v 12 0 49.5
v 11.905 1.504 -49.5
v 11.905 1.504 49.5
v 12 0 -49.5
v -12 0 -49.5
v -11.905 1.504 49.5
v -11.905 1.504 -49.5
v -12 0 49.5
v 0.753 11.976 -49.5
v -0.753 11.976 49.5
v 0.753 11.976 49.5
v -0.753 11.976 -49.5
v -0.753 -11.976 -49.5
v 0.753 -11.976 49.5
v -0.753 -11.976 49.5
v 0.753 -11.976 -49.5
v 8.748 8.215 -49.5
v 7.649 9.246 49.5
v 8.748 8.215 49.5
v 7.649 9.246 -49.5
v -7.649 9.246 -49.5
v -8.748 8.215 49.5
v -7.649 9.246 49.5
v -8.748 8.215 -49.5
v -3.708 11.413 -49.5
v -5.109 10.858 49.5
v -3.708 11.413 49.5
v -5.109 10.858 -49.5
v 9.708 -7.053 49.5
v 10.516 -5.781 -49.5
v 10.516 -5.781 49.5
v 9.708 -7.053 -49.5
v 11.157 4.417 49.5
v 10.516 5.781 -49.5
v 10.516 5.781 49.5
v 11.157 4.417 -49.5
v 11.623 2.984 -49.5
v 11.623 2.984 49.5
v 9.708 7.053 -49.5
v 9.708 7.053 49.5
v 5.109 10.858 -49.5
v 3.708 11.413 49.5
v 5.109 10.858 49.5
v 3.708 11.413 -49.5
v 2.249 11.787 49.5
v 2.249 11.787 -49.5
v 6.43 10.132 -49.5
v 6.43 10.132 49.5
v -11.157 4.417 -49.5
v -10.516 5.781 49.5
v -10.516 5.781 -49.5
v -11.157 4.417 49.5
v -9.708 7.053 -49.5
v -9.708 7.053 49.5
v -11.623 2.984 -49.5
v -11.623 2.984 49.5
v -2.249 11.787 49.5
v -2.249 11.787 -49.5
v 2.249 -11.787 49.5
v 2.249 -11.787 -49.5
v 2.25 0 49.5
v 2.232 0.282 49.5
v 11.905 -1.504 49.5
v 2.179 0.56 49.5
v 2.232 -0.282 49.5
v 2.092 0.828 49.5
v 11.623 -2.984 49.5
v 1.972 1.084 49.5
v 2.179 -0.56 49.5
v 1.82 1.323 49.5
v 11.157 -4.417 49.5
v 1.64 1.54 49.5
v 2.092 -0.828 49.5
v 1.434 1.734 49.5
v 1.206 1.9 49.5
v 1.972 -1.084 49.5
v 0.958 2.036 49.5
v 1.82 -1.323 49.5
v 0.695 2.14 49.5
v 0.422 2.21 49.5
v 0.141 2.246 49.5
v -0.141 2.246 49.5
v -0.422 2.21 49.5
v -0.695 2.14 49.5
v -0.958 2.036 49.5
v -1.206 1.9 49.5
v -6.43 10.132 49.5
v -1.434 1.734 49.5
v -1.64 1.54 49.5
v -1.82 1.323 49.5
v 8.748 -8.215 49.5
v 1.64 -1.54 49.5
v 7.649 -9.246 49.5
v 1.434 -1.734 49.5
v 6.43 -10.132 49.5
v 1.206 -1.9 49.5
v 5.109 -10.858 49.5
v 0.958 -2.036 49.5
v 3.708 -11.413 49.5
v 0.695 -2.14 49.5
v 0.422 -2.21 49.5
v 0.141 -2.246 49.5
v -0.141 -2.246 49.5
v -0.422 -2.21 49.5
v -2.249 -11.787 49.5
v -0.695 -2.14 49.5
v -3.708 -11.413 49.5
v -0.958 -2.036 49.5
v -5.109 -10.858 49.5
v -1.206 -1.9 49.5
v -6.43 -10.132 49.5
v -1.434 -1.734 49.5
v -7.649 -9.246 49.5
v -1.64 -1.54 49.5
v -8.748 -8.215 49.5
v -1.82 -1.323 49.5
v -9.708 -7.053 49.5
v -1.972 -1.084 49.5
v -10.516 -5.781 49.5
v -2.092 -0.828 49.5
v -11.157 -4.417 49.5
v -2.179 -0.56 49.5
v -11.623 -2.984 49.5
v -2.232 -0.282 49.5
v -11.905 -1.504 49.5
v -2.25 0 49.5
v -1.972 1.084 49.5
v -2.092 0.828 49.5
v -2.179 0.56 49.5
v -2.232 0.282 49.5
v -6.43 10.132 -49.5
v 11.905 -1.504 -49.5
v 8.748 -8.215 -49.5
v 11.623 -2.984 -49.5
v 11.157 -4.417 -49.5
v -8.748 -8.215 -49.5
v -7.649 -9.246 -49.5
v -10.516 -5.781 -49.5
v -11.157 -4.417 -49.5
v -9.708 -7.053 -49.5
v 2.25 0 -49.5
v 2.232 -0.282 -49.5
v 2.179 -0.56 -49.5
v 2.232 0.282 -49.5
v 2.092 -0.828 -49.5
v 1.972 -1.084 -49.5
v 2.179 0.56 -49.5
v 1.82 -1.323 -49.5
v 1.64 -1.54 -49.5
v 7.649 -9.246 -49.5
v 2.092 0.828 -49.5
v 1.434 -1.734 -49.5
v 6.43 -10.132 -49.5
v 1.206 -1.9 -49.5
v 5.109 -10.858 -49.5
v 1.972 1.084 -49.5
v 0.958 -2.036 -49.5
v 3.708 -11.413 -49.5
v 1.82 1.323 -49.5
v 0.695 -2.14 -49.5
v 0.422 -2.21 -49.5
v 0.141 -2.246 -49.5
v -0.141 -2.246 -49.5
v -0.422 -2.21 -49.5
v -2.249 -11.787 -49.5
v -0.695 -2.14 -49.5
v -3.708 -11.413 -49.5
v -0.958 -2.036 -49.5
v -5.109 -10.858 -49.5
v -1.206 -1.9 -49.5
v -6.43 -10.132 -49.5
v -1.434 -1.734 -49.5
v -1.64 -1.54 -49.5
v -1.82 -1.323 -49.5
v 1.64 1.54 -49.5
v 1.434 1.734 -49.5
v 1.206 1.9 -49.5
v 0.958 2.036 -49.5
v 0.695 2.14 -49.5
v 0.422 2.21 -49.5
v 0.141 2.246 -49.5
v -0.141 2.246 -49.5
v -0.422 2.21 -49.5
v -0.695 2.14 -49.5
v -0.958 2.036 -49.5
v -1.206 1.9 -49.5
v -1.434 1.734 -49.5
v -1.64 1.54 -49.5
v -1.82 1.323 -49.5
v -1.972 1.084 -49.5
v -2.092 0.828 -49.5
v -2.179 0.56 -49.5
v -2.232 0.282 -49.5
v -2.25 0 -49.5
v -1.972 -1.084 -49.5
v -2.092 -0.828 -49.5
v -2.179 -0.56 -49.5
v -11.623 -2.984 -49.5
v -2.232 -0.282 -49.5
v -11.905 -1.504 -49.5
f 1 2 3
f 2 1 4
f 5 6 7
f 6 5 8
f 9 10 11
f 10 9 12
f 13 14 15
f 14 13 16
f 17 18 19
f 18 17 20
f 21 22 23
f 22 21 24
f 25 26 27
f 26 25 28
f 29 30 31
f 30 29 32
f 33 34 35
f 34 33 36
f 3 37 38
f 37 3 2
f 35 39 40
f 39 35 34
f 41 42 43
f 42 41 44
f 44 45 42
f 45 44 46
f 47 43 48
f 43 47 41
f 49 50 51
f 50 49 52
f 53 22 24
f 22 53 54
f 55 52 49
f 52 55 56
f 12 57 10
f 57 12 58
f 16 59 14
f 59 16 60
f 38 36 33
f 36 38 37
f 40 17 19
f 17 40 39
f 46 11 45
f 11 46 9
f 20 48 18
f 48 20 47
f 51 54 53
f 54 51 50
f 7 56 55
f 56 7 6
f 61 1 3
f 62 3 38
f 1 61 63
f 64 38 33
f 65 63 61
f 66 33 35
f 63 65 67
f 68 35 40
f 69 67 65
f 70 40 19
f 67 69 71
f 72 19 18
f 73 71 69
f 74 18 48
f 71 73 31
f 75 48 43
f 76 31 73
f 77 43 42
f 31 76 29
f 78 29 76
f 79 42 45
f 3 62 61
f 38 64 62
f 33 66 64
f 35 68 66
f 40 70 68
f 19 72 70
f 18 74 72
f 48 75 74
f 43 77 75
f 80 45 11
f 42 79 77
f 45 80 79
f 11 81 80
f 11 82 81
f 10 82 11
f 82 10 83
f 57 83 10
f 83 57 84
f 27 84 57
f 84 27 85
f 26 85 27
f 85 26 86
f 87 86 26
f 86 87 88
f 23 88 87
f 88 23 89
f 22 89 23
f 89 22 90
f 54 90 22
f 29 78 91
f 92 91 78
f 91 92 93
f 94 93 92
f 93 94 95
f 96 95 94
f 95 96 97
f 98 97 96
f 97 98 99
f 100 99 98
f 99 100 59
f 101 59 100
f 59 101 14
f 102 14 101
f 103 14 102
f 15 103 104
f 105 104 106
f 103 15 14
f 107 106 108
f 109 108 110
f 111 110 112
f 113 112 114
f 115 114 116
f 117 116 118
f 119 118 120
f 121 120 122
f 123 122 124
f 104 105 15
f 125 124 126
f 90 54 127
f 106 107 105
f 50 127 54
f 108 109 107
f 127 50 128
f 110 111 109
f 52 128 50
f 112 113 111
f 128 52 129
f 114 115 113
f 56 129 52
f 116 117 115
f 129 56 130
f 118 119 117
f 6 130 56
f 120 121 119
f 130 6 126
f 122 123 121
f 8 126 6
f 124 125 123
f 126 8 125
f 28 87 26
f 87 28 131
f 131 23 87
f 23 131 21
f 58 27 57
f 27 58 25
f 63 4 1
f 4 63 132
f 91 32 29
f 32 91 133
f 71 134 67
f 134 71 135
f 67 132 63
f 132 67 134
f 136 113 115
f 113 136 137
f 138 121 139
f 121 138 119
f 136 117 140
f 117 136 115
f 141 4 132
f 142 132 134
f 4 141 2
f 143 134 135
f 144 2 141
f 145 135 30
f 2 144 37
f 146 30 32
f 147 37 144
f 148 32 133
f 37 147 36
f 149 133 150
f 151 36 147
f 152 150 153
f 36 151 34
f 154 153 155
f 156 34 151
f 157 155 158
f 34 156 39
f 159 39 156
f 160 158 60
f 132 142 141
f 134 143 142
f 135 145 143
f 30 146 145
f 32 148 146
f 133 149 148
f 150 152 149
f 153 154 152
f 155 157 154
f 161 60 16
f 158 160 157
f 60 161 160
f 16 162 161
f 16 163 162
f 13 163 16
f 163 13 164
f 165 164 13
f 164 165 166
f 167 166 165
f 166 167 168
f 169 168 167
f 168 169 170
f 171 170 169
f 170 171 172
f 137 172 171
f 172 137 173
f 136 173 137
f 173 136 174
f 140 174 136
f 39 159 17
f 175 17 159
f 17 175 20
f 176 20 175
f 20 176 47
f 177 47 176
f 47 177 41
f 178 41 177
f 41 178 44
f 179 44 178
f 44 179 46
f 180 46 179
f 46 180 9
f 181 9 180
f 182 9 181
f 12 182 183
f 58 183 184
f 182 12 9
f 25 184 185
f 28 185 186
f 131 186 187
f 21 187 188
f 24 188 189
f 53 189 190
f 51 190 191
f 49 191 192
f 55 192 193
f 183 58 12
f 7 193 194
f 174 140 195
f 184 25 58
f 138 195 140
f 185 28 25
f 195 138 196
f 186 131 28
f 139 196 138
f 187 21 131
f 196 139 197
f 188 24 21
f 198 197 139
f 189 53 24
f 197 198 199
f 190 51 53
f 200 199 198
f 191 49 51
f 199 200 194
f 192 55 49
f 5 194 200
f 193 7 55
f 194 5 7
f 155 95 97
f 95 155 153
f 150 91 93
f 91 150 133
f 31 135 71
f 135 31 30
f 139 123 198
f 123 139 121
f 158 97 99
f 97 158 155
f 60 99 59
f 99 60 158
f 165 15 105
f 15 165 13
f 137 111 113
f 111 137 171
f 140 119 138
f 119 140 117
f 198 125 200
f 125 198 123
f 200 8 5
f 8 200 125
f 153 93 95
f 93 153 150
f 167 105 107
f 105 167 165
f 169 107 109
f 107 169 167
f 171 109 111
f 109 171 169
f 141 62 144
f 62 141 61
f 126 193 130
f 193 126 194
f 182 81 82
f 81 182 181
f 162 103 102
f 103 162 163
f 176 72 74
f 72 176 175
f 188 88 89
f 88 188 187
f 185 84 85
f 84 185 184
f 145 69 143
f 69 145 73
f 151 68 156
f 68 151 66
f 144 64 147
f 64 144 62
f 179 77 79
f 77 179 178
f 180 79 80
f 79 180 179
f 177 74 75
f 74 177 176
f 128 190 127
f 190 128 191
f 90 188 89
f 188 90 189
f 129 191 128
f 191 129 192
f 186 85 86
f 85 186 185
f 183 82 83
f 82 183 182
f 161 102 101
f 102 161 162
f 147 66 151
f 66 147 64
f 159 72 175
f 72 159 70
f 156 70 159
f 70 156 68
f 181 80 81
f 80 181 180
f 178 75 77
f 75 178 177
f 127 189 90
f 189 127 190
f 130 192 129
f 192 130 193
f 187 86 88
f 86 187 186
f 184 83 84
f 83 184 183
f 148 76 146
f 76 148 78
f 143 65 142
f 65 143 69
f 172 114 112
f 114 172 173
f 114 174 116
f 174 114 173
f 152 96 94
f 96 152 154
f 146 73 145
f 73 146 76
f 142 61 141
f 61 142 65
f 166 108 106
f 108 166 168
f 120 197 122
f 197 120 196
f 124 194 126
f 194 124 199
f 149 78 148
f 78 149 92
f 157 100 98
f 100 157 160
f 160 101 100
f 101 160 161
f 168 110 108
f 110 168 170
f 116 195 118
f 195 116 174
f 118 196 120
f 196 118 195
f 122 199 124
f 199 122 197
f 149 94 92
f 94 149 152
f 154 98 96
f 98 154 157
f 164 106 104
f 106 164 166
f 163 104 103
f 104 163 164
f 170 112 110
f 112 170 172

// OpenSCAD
$fn = 50;


difference() {
	union() {
		translate(v = [0, 0, -49.5000000000]) {
			cylinder(h = 99, r = 12.0000000000);
		}
	}
	union() {
		translate(v = [0, 0, -100.0000000000]) {
			cylinder(h = 200, r = 2.2500000000);
		}
	}
}
